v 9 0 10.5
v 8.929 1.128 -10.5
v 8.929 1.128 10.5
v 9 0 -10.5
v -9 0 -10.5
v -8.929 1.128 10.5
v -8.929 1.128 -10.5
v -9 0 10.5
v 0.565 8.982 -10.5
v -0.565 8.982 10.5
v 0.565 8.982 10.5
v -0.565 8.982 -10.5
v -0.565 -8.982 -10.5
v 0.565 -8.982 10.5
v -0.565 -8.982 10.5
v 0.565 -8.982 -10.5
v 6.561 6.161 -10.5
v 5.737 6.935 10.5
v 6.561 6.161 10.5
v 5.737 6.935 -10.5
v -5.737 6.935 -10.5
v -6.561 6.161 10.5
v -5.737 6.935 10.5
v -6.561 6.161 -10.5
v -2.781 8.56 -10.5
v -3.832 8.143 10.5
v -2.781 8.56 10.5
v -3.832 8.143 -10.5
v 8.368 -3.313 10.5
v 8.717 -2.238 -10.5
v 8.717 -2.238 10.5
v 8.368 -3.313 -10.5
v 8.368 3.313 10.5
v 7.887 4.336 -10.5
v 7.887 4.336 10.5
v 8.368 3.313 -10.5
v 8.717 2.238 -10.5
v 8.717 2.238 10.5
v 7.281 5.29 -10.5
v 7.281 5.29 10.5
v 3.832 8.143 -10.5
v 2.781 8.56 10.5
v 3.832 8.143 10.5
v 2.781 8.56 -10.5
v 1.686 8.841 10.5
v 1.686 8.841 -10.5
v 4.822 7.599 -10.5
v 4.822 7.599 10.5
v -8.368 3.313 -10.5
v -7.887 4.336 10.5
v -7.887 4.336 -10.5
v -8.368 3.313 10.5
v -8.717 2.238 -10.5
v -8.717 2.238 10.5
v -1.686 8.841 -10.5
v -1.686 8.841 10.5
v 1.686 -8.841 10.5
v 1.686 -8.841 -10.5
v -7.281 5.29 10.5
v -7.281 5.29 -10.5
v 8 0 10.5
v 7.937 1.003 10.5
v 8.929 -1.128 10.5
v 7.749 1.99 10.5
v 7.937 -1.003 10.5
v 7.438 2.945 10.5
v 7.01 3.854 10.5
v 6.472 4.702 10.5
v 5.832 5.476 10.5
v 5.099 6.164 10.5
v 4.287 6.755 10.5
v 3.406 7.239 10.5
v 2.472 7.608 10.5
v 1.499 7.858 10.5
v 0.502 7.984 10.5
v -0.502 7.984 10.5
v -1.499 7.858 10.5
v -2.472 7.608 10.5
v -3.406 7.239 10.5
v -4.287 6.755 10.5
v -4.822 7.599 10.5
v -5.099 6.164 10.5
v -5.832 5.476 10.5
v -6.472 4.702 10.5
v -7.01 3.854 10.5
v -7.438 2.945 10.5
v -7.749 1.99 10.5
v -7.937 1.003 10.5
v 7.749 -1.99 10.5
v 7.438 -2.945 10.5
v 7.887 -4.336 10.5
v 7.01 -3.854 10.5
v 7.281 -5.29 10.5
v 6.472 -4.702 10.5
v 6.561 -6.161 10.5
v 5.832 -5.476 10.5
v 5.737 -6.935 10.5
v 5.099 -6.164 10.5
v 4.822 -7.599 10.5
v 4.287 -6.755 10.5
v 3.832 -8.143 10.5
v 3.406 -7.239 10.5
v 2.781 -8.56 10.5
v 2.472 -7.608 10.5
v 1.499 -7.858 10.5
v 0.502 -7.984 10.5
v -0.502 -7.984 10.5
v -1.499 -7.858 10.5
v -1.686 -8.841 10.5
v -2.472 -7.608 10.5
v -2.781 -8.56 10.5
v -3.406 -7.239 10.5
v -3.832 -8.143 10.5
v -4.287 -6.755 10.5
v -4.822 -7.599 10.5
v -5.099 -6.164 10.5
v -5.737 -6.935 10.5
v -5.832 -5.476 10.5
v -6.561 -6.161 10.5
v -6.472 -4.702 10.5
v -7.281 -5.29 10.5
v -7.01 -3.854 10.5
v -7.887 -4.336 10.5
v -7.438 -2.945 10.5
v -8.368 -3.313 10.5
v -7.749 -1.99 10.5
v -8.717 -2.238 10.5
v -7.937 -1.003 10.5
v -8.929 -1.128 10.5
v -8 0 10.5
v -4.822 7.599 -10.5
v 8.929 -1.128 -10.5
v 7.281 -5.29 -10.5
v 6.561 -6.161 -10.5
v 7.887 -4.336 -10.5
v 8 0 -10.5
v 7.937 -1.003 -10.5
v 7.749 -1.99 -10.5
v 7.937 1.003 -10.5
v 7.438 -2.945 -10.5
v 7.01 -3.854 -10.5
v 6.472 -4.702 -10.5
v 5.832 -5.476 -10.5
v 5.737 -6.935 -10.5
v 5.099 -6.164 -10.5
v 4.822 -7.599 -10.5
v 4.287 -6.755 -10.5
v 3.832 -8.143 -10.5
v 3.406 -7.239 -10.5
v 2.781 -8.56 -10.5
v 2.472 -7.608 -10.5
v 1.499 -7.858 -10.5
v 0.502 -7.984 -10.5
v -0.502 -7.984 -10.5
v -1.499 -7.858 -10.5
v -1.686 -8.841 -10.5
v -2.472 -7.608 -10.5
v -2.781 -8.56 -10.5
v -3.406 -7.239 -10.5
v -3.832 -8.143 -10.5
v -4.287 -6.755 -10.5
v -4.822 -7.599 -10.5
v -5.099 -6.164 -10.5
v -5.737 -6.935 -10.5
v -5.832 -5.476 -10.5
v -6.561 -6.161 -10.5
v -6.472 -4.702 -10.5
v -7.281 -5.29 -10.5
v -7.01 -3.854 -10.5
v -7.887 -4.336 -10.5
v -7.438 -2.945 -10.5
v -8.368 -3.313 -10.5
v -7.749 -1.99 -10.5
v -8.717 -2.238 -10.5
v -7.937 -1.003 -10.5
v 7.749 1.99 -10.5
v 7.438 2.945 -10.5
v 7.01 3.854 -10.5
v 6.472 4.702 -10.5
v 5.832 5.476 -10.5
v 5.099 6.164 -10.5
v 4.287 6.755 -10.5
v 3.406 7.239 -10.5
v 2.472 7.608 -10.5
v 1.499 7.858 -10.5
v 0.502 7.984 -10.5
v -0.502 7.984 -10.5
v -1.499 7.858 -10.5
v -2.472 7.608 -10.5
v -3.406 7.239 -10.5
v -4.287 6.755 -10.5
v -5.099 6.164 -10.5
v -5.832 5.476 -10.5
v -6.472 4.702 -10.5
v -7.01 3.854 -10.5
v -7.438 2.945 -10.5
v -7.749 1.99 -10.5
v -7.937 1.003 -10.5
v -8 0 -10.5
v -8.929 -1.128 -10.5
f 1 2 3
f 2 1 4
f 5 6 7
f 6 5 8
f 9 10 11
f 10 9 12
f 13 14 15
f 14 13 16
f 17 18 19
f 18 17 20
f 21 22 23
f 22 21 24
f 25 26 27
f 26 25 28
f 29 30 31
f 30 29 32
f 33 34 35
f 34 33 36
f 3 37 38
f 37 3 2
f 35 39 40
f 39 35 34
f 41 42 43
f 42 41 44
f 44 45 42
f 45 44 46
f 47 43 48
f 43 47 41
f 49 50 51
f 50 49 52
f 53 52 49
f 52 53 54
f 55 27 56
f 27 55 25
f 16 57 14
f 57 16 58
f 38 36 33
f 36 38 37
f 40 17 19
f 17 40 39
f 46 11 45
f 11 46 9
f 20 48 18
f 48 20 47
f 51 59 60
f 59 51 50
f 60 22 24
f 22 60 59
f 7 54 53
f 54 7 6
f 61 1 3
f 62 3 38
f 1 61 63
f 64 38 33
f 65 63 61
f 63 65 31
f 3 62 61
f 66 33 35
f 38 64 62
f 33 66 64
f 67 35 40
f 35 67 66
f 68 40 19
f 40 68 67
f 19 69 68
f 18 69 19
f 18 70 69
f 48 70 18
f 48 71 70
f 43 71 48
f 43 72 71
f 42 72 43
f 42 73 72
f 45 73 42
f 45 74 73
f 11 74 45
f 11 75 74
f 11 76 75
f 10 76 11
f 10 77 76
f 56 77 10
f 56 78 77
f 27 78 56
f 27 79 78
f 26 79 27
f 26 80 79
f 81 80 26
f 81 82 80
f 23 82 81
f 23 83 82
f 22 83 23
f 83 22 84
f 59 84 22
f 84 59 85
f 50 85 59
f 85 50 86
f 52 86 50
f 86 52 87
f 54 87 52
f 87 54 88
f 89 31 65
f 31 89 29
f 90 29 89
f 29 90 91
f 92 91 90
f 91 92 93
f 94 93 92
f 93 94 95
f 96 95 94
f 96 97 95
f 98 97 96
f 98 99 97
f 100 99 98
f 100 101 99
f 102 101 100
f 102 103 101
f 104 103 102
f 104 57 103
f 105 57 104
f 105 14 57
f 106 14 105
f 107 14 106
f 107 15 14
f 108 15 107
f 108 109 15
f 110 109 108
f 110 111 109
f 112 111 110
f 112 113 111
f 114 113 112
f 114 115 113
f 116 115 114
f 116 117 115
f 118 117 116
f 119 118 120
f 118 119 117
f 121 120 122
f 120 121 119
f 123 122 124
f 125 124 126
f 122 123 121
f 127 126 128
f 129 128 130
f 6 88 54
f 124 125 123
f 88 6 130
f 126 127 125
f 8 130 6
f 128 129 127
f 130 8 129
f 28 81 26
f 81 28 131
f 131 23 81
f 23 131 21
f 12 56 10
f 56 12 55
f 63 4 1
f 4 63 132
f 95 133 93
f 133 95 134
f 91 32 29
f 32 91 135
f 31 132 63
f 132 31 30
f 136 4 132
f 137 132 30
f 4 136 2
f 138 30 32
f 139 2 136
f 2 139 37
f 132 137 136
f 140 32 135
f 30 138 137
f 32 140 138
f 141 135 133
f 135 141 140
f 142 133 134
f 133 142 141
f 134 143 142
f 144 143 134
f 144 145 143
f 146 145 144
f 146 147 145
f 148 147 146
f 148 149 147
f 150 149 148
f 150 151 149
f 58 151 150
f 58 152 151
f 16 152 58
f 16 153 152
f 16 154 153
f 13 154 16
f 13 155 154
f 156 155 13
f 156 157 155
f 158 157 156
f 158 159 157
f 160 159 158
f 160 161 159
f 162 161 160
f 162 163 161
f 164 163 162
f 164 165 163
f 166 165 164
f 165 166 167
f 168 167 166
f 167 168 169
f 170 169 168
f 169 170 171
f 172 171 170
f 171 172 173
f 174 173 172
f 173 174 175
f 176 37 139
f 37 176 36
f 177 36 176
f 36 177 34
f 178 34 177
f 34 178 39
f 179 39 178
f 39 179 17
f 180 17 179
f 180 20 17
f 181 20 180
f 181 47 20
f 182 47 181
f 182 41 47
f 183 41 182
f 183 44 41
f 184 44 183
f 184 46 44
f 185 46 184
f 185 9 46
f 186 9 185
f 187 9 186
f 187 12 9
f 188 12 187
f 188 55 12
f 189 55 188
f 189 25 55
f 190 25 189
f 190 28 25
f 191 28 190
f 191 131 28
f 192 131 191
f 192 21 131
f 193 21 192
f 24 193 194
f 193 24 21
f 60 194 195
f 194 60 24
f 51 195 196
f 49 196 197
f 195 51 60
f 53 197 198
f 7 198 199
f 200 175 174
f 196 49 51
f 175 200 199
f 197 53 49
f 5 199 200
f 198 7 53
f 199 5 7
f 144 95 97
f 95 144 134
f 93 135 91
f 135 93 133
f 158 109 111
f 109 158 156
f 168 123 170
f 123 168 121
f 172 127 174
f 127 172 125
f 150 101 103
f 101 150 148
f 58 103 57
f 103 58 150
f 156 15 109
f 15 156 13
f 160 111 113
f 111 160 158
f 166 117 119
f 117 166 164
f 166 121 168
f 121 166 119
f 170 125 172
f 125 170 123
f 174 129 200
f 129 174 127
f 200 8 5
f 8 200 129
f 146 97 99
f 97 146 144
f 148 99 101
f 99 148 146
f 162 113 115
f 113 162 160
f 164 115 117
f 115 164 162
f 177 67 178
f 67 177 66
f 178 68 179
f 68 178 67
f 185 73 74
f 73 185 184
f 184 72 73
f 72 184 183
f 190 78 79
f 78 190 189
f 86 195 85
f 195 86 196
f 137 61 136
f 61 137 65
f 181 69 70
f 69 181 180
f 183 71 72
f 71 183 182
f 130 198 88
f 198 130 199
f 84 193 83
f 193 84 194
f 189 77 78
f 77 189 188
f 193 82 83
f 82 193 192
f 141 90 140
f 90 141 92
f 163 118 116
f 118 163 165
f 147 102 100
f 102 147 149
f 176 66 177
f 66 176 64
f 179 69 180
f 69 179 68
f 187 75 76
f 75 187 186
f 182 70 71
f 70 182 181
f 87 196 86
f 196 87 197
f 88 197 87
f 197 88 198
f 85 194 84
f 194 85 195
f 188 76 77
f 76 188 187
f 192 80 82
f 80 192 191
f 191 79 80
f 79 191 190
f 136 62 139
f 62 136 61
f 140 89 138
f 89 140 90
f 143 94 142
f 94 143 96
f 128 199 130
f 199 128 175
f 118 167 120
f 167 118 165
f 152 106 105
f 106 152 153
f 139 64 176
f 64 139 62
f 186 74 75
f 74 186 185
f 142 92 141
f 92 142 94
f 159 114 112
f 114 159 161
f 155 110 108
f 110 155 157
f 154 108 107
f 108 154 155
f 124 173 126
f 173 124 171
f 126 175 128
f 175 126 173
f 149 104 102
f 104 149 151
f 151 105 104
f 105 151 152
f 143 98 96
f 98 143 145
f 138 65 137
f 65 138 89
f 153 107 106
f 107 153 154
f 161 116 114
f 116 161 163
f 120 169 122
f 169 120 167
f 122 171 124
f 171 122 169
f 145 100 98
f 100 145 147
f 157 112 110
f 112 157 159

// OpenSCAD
$fn = 50;


difference() {
	union() {
		translate(v = [0, 0, -10.5000000000]) {
			cylinder(h = 21, r = 9.0000000000);
		}
	}
	union() {
		translate(v = [0, 0, -100.0000000000]) {
			cylinder(h = 200, r = 8);
		}
	}
}
